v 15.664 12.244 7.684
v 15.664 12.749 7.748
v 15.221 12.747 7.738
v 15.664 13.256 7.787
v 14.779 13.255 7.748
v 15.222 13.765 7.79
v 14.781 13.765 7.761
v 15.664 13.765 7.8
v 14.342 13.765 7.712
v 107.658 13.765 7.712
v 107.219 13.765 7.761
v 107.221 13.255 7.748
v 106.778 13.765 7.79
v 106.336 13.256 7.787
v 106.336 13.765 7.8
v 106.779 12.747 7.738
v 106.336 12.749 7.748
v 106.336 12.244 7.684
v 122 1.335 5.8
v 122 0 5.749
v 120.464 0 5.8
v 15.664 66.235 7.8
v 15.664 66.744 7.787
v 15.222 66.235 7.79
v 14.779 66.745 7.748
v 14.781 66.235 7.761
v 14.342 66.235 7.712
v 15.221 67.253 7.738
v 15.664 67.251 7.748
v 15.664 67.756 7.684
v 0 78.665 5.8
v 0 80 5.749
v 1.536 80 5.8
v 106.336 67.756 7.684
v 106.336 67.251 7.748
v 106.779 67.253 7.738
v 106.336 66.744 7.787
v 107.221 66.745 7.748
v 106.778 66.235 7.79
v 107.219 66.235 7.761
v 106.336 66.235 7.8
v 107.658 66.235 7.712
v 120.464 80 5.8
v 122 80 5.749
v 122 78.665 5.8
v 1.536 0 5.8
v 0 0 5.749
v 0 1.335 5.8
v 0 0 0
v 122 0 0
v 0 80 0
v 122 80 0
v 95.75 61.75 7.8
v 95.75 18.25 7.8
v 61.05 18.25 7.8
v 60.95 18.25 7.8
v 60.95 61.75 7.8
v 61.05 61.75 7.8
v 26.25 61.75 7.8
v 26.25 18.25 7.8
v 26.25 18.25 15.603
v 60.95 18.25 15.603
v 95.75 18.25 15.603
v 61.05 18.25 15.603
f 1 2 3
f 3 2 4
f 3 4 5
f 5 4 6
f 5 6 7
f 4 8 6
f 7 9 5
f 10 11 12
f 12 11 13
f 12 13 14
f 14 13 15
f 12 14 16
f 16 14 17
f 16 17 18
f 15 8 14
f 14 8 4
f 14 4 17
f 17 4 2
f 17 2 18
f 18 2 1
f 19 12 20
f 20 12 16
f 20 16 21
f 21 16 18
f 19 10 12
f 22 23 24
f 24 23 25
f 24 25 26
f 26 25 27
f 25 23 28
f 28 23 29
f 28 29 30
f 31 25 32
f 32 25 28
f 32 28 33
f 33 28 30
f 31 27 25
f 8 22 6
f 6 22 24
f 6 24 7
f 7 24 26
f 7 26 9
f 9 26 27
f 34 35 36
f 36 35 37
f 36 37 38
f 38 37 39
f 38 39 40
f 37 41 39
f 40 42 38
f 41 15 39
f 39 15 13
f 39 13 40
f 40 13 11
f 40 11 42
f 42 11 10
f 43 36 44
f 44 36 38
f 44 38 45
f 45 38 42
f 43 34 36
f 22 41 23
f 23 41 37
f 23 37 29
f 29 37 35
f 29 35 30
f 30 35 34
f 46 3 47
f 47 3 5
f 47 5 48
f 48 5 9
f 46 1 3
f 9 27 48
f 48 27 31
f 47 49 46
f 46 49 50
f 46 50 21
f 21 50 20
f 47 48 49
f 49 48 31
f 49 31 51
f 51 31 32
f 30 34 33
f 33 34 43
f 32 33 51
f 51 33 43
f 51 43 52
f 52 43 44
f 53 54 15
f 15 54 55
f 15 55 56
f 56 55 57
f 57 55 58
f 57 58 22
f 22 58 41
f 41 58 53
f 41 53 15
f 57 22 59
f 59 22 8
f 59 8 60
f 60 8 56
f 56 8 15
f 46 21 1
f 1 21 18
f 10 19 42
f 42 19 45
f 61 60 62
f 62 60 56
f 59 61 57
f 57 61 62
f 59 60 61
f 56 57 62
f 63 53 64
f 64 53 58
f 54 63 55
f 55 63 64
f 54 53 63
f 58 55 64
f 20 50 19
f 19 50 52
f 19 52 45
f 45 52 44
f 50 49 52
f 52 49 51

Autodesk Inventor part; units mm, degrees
ref_plane "YZ Plane" through (0, 0, 0) normal (1, 0, 0) x (0, 1, 0)
sketch "스케치1" plane through (0, 0, 0) normal (0, 0, 1) x (1, 0, 0)
  line L0 (0, 0) -> (122, 0)
  line L1 (122, 0) -> (122, 80)
  line L2 (122, 80) -> (0, 80)
  line L3 (0, 80) -> (0, 0)
  dimension "d0" = 80
  dimension "d1" = 122
extrude "돌출1" add sketch "스케치1" along normal blind 7.8
sketch "스케치2" plane through (0, 0, 7.8) normal (0, 0, 1) x (1, 0, 0)
  line L0 (26.25, 61.75) -> (95.75, 61.75)
  line L1 (95.75, 61.75) -> (95.75, 18.25)
  line L2 (95.75, 18.25) -> (26.25, 18.25)
  line L3 (26.25, 18.25) -> (26.25, 61.75)
  line L4 (0, 80) -> (0, 0) projected
  line L5 (0, 0) -> (122, 0) projected
  dimension "d4" = 43.5
  dimension "d5" = 69.5
  dimension "d6" = 26.25
  dimension "d7" = 18.25
ref_plane "작업 평면1" through (95.75, 0, 0) normal (1, 0, 0) x (0, 0, -1)
sketch "스케치3" plane through (95.75, 0, 0) normal (1, 0, 0) x (0, 0, -1)
  line L0 (-7.8, 61.75) -> (-7.8, 18.25) projected
  line L1 (-7.8, 61.75) -> (-15.6034, 18.25)
  line L2 (-15.6034, 18.25) -> (-7.8, 18.25)
  point P0 (0, 0)
  dimension "d9" = 10.17
extrude "돌출2" add sketch "스케치3" against normal blind 34.7
ref_plane "작업 평면2" through (26.25, 0, 0) normal (-1, 0, 0) x (0, 0, 1)
sketch "스케치4" plane through (26.25, 0, 0) normal (-1, 0, 0) x (0, 0, 1)
  line L0 (7.8, 18.25) -> (7.8, 61.75) projected
  line L1 (7.8, 18.25) -> (15.6034, 18.25) projected
  line L2 (15.6034, 18.25) -> (7.8, 61.75) projected
  point P0 (0, 0)
extrude "돌출3" add sketch "스케치4" against normal blind 34.7
chamfer "모따기1" distance 15 distance2 2 1 edges at (122, 40, 7.8) measured on face at (61.0167, 73.9167, 7.8)
chamfer "모따기2" distance 15 distance2 2 1 edges at (0, 40, 7.8) measured on face at (8.75, 47.25, 7.8)
chamfer "모따기3" distance 13 distance2 2 1 edges at (61, 80, 7.8) measured on face at (61.0167, 73.9167, 7.8)
chamfer "모따기4" distance 13 distance2 2 1 edges at (61, 0, 7.8) measured on face at (60.9833, 6.0833, 7.8)
fillet "모깎기1" radius 10 8 edges at (114.5, 73.5, 6.8) (61, 67, 7.8) (107, 40, 7.8) (114.5, 6.5, 6.8) (61, 13, 7.8) (15, 40, 7.8) (7.5, 6.5, 6.8) (7.5, 73.5, 6.8)
properties part number "스위치2"
